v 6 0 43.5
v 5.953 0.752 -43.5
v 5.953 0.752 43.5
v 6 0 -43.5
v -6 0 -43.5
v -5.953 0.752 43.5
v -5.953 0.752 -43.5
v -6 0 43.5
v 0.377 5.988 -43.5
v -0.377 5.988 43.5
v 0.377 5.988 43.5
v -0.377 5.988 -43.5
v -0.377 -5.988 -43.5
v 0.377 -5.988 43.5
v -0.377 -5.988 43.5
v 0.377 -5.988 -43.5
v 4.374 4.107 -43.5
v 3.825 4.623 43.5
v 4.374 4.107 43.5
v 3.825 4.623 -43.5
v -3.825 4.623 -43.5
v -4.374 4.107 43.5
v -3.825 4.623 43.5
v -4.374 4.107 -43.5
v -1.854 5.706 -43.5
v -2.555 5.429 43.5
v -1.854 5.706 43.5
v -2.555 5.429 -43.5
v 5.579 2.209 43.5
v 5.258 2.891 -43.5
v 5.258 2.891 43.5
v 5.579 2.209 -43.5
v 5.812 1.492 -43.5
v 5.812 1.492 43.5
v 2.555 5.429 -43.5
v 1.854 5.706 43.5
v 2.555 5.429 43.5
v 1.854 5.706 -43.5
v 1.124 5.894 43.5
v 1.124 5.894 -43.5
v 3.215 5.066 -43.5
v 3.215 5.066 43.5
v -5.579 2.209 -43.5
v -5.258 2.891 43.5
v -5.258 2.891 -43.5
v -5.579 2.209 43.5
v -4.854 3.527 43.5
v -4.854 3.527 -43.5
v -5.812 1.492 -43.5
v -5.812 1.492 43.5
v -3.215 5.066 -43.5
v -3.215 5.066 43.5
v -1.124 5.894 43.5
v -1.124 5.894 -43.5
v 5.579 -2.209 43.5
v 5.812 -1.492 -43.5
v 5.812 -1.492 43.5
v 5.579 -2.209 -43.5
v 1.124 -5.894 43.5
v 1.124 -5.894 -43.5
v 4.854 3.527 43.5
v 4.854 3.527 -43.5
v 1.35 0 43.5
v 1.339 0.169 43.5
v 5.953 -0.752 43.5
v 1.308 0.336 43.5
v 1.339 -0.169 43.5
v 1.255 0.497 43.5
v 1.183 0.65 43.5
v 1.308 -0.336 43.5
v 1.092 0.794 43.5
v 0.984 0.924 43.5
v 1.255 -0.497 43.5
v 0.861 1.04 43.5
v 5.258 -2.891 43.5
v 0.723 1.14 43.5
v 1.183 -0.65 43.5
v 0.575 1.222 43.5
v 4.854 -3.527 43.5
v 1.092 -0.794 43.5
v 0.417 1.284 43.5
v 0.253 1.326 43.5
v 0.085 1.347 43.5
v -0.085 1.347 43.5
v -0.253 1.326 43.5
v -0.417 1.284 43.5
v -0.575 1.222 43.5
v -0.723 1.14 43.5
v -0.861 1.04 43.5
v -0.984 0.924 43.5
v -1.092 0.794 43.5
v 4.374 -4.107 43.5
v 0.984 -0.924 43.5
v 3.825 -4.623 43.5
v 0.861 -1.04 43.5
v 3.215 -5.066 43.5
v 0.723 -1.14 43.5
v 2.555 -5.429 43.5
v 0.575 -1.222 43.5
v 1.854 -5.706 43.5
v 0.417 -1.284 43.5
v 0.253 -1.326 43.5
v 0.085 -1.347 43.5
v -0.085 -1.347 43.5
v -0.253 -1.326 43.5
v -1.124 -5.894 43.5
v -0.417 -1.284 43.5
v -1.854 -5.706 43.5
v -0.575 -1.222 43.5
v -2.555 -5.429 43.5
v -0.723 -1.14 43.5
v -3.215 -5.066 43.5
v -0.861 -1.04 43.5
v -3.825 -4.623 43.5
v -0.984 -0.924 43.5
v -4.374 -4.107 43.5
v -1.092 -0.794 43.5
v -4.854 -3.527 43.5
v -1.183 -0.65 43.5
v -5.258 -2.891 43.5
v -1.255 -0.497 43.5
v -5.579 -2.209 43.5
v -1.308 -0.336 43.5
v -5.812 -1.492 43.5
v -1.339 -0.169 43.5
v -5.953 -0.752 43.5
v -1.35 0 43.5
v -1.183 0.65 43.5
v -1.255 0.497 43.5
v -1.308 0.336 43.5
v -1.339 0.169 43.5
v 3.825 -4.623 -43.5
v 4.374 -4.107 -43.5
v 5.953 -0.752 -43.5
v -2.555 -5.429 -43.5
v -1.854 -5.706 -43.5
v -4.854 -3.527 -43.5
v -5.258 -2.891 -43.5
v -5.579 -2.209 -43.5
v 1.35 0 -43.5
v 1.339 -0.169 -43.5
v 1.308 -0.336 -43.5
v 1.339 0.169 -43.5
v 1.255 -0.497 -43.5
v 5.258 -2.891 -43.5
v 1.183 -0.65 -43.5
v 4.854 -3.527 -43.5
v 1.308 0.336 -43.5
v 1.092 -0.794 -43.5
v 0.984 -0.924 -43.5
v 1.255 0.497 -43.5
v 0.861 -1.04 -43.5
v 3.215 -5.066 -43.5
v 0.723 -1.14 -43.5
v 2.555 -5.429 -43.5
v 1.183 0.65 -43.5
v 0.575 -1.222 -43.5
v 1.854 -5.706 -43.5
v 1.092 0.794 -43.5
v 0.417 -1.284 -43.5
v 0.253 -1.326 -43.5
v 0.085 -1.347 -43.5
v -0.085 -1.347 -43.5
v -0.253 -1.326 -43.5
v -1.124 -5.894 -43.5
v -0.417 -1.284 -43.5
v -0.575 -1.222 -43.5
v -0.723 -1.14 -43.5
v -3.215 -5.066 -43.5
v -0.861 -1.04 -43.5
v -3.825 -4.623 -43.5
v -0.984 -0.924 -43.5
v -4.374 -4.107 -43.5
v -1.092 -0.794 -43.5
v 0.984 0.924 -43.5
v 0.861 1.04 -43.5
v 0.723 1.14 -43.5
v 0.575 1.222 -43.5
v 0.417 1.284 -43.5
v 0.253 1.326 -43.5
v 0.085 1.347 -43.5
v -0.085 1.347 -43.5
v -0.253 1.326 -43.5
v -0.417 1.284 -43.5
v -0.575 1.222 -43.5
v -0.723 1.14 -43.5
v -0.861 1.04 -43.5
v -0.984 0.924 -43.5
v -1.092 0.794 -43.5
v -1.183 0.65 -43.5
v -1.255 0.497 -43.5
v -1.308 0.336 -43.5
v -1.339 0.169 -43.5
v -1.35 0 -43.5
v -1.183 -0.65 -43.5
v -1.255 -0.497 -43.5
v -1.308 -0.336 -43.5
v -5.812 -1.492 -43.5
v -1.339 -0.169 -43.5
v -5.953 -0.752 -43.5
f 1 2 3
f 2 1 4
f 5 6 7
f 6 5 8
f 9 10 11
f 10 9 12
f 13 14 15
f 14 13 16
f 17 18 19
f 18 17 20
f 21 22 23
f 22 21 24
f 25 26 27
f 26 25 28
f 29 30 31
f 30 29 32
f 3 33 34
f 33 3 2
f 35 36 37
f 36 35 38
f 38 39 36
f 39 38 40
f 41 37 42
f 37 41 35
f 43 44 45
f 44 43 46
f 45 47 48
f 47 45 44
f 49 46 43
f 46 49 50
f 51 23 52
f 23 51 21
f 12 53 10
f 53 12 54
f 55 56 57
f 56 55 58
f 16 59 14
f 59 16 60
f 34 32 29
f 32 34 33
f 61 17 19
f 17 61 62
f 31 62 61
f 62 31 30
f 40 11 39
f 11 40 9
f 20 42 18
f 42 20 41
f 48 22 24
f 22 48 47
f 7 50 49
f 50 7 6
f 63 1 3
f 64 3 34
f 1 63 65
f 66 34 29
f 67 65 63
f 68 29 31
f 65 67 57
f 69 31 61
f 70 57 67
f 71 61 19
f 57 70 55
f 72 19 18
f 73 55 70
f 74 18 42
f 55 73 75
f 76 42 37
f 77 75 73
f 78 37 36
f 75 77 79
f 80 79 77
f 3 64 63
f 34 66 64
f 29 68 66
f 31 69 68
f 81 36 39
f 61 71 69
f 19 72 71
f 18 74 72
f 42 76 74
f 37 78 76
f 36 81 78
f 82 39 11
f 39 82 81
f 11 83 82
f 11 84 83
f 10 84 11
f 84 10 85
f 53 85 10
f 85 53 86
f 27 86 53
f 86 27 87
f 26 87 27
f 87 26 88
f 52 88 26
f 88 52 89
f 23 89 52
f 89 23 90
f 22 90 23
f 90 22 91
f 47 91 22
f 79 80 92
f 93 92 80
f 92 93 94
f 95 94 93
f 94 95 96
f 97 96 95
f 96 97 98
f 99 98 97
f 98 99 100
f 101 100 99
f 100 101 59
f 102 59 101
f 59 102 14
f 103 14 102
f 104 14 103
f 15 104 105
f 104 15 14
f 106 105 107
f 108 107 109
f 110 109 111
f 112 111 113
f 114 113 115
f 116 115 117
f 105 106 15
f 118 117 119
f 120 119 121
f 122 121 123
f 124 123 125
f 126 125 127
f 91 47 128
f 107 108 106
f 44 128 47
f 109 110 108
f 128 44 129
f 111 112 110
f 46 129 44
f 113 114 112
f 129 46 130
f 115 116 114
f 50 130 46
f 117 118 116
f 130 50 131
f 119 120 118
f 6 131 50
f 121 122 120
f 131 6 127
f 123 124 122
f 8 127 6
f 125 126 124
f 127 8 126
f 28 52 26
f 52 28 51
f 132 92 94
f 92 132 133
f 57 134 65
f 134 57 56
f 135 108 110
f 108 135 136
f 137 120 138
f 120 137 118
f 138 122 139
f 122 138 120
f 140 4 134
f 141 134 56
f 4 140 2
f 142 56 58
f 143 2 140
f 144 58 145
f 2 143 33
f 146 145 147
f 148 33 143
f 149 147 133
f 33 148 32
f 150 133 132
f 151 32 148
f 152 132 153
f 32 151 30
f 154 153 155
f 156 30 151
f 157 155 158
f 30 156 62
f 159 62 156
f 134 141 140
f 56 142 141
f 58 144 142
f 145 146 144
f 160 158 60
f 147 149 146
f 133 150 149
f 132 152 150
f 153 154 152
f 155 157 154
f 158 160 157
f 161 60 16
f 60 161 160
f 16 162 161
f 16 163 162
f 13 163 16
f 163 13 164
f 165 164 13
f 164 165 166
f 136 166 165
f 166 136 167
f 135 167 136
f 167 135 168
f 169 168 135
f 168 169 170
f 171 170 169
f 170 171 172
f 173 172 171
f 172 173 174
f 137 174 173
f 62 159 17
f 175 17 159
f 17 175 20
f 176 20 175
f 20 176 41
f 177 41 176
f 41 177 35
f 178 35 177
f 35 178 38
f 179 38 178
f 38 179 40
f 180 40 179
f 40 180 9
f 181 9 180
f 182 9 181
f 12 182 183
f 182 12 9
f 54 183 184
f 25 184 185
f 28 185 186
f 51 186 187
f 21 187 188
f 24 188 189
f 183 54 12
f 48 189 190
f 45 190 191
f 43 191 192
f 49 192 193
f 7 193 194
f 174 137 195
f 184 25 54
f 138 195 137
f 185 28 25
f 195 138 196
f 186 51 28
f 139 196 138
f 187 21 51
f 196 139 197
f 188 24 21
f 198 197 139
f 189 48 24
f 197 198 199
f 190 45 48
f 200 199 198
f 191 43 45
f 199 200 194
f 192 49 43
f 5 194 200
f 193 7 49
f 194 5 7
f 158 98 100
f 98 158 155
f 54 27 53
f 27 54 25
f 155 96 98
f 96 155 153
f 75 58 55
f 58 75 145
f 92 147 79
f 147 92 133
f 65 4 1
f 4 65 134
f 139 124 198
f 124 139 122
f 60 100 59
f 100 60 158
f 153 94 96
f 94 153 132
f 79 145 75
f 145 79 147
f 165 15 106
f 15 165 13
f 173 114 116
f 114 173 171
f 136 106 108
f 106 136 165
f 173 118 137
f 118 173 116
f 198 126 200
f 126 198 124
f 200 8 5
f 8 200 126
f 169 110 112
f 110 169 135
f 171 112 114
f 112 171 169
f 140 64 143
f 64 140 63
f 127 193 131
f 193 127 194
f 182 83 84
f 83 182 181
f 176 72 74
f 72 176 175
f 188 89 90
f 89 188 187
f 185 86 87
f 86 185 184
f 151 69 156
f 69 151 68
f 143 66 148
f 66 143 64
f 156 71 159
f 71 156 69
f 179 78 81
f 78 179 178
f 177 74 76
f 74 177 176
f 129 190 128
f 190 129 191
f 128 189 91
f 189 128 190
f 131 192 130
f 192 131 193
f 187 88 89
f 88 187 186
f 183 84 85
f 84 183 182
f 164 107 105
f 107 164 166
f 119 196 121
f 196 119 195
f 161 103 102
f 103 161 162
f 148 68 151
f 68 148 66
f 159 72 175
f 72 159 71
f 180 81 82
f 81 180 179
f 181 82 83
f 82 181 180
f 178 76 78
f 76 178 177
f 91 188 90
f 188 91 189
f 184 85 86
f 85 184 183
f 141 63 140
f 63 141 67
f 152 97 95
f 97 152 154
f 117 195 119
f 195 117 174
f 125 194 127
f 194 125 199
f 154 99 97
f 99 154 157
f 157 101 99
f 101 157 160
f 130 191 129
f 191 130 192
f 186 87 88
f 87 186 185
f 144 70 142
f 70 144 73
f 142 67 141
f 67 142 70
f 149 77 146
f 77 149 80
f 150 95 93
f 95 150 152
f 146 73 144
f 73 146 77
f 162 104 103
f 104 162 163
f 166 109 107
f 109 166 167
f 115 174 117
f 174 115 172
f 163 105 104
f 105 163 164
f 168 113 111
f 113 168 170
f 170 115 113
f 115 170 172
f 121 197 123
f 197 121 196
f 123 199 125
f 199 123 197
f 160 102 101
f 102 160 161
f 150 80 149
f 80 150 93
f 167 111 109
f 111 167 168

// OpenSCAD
$fn = 50;


difference() {
	union() {
		translate(v = [0, 0, -43.5000000000]) {
			cylinder(h = 87, r = 6.0000000000);
		}
	}
	union() {
		translate(v = [0, 0, -100.0000000000]) {
			cylinder(h = 200, r = 1.3500000000);
		}
	}
}
